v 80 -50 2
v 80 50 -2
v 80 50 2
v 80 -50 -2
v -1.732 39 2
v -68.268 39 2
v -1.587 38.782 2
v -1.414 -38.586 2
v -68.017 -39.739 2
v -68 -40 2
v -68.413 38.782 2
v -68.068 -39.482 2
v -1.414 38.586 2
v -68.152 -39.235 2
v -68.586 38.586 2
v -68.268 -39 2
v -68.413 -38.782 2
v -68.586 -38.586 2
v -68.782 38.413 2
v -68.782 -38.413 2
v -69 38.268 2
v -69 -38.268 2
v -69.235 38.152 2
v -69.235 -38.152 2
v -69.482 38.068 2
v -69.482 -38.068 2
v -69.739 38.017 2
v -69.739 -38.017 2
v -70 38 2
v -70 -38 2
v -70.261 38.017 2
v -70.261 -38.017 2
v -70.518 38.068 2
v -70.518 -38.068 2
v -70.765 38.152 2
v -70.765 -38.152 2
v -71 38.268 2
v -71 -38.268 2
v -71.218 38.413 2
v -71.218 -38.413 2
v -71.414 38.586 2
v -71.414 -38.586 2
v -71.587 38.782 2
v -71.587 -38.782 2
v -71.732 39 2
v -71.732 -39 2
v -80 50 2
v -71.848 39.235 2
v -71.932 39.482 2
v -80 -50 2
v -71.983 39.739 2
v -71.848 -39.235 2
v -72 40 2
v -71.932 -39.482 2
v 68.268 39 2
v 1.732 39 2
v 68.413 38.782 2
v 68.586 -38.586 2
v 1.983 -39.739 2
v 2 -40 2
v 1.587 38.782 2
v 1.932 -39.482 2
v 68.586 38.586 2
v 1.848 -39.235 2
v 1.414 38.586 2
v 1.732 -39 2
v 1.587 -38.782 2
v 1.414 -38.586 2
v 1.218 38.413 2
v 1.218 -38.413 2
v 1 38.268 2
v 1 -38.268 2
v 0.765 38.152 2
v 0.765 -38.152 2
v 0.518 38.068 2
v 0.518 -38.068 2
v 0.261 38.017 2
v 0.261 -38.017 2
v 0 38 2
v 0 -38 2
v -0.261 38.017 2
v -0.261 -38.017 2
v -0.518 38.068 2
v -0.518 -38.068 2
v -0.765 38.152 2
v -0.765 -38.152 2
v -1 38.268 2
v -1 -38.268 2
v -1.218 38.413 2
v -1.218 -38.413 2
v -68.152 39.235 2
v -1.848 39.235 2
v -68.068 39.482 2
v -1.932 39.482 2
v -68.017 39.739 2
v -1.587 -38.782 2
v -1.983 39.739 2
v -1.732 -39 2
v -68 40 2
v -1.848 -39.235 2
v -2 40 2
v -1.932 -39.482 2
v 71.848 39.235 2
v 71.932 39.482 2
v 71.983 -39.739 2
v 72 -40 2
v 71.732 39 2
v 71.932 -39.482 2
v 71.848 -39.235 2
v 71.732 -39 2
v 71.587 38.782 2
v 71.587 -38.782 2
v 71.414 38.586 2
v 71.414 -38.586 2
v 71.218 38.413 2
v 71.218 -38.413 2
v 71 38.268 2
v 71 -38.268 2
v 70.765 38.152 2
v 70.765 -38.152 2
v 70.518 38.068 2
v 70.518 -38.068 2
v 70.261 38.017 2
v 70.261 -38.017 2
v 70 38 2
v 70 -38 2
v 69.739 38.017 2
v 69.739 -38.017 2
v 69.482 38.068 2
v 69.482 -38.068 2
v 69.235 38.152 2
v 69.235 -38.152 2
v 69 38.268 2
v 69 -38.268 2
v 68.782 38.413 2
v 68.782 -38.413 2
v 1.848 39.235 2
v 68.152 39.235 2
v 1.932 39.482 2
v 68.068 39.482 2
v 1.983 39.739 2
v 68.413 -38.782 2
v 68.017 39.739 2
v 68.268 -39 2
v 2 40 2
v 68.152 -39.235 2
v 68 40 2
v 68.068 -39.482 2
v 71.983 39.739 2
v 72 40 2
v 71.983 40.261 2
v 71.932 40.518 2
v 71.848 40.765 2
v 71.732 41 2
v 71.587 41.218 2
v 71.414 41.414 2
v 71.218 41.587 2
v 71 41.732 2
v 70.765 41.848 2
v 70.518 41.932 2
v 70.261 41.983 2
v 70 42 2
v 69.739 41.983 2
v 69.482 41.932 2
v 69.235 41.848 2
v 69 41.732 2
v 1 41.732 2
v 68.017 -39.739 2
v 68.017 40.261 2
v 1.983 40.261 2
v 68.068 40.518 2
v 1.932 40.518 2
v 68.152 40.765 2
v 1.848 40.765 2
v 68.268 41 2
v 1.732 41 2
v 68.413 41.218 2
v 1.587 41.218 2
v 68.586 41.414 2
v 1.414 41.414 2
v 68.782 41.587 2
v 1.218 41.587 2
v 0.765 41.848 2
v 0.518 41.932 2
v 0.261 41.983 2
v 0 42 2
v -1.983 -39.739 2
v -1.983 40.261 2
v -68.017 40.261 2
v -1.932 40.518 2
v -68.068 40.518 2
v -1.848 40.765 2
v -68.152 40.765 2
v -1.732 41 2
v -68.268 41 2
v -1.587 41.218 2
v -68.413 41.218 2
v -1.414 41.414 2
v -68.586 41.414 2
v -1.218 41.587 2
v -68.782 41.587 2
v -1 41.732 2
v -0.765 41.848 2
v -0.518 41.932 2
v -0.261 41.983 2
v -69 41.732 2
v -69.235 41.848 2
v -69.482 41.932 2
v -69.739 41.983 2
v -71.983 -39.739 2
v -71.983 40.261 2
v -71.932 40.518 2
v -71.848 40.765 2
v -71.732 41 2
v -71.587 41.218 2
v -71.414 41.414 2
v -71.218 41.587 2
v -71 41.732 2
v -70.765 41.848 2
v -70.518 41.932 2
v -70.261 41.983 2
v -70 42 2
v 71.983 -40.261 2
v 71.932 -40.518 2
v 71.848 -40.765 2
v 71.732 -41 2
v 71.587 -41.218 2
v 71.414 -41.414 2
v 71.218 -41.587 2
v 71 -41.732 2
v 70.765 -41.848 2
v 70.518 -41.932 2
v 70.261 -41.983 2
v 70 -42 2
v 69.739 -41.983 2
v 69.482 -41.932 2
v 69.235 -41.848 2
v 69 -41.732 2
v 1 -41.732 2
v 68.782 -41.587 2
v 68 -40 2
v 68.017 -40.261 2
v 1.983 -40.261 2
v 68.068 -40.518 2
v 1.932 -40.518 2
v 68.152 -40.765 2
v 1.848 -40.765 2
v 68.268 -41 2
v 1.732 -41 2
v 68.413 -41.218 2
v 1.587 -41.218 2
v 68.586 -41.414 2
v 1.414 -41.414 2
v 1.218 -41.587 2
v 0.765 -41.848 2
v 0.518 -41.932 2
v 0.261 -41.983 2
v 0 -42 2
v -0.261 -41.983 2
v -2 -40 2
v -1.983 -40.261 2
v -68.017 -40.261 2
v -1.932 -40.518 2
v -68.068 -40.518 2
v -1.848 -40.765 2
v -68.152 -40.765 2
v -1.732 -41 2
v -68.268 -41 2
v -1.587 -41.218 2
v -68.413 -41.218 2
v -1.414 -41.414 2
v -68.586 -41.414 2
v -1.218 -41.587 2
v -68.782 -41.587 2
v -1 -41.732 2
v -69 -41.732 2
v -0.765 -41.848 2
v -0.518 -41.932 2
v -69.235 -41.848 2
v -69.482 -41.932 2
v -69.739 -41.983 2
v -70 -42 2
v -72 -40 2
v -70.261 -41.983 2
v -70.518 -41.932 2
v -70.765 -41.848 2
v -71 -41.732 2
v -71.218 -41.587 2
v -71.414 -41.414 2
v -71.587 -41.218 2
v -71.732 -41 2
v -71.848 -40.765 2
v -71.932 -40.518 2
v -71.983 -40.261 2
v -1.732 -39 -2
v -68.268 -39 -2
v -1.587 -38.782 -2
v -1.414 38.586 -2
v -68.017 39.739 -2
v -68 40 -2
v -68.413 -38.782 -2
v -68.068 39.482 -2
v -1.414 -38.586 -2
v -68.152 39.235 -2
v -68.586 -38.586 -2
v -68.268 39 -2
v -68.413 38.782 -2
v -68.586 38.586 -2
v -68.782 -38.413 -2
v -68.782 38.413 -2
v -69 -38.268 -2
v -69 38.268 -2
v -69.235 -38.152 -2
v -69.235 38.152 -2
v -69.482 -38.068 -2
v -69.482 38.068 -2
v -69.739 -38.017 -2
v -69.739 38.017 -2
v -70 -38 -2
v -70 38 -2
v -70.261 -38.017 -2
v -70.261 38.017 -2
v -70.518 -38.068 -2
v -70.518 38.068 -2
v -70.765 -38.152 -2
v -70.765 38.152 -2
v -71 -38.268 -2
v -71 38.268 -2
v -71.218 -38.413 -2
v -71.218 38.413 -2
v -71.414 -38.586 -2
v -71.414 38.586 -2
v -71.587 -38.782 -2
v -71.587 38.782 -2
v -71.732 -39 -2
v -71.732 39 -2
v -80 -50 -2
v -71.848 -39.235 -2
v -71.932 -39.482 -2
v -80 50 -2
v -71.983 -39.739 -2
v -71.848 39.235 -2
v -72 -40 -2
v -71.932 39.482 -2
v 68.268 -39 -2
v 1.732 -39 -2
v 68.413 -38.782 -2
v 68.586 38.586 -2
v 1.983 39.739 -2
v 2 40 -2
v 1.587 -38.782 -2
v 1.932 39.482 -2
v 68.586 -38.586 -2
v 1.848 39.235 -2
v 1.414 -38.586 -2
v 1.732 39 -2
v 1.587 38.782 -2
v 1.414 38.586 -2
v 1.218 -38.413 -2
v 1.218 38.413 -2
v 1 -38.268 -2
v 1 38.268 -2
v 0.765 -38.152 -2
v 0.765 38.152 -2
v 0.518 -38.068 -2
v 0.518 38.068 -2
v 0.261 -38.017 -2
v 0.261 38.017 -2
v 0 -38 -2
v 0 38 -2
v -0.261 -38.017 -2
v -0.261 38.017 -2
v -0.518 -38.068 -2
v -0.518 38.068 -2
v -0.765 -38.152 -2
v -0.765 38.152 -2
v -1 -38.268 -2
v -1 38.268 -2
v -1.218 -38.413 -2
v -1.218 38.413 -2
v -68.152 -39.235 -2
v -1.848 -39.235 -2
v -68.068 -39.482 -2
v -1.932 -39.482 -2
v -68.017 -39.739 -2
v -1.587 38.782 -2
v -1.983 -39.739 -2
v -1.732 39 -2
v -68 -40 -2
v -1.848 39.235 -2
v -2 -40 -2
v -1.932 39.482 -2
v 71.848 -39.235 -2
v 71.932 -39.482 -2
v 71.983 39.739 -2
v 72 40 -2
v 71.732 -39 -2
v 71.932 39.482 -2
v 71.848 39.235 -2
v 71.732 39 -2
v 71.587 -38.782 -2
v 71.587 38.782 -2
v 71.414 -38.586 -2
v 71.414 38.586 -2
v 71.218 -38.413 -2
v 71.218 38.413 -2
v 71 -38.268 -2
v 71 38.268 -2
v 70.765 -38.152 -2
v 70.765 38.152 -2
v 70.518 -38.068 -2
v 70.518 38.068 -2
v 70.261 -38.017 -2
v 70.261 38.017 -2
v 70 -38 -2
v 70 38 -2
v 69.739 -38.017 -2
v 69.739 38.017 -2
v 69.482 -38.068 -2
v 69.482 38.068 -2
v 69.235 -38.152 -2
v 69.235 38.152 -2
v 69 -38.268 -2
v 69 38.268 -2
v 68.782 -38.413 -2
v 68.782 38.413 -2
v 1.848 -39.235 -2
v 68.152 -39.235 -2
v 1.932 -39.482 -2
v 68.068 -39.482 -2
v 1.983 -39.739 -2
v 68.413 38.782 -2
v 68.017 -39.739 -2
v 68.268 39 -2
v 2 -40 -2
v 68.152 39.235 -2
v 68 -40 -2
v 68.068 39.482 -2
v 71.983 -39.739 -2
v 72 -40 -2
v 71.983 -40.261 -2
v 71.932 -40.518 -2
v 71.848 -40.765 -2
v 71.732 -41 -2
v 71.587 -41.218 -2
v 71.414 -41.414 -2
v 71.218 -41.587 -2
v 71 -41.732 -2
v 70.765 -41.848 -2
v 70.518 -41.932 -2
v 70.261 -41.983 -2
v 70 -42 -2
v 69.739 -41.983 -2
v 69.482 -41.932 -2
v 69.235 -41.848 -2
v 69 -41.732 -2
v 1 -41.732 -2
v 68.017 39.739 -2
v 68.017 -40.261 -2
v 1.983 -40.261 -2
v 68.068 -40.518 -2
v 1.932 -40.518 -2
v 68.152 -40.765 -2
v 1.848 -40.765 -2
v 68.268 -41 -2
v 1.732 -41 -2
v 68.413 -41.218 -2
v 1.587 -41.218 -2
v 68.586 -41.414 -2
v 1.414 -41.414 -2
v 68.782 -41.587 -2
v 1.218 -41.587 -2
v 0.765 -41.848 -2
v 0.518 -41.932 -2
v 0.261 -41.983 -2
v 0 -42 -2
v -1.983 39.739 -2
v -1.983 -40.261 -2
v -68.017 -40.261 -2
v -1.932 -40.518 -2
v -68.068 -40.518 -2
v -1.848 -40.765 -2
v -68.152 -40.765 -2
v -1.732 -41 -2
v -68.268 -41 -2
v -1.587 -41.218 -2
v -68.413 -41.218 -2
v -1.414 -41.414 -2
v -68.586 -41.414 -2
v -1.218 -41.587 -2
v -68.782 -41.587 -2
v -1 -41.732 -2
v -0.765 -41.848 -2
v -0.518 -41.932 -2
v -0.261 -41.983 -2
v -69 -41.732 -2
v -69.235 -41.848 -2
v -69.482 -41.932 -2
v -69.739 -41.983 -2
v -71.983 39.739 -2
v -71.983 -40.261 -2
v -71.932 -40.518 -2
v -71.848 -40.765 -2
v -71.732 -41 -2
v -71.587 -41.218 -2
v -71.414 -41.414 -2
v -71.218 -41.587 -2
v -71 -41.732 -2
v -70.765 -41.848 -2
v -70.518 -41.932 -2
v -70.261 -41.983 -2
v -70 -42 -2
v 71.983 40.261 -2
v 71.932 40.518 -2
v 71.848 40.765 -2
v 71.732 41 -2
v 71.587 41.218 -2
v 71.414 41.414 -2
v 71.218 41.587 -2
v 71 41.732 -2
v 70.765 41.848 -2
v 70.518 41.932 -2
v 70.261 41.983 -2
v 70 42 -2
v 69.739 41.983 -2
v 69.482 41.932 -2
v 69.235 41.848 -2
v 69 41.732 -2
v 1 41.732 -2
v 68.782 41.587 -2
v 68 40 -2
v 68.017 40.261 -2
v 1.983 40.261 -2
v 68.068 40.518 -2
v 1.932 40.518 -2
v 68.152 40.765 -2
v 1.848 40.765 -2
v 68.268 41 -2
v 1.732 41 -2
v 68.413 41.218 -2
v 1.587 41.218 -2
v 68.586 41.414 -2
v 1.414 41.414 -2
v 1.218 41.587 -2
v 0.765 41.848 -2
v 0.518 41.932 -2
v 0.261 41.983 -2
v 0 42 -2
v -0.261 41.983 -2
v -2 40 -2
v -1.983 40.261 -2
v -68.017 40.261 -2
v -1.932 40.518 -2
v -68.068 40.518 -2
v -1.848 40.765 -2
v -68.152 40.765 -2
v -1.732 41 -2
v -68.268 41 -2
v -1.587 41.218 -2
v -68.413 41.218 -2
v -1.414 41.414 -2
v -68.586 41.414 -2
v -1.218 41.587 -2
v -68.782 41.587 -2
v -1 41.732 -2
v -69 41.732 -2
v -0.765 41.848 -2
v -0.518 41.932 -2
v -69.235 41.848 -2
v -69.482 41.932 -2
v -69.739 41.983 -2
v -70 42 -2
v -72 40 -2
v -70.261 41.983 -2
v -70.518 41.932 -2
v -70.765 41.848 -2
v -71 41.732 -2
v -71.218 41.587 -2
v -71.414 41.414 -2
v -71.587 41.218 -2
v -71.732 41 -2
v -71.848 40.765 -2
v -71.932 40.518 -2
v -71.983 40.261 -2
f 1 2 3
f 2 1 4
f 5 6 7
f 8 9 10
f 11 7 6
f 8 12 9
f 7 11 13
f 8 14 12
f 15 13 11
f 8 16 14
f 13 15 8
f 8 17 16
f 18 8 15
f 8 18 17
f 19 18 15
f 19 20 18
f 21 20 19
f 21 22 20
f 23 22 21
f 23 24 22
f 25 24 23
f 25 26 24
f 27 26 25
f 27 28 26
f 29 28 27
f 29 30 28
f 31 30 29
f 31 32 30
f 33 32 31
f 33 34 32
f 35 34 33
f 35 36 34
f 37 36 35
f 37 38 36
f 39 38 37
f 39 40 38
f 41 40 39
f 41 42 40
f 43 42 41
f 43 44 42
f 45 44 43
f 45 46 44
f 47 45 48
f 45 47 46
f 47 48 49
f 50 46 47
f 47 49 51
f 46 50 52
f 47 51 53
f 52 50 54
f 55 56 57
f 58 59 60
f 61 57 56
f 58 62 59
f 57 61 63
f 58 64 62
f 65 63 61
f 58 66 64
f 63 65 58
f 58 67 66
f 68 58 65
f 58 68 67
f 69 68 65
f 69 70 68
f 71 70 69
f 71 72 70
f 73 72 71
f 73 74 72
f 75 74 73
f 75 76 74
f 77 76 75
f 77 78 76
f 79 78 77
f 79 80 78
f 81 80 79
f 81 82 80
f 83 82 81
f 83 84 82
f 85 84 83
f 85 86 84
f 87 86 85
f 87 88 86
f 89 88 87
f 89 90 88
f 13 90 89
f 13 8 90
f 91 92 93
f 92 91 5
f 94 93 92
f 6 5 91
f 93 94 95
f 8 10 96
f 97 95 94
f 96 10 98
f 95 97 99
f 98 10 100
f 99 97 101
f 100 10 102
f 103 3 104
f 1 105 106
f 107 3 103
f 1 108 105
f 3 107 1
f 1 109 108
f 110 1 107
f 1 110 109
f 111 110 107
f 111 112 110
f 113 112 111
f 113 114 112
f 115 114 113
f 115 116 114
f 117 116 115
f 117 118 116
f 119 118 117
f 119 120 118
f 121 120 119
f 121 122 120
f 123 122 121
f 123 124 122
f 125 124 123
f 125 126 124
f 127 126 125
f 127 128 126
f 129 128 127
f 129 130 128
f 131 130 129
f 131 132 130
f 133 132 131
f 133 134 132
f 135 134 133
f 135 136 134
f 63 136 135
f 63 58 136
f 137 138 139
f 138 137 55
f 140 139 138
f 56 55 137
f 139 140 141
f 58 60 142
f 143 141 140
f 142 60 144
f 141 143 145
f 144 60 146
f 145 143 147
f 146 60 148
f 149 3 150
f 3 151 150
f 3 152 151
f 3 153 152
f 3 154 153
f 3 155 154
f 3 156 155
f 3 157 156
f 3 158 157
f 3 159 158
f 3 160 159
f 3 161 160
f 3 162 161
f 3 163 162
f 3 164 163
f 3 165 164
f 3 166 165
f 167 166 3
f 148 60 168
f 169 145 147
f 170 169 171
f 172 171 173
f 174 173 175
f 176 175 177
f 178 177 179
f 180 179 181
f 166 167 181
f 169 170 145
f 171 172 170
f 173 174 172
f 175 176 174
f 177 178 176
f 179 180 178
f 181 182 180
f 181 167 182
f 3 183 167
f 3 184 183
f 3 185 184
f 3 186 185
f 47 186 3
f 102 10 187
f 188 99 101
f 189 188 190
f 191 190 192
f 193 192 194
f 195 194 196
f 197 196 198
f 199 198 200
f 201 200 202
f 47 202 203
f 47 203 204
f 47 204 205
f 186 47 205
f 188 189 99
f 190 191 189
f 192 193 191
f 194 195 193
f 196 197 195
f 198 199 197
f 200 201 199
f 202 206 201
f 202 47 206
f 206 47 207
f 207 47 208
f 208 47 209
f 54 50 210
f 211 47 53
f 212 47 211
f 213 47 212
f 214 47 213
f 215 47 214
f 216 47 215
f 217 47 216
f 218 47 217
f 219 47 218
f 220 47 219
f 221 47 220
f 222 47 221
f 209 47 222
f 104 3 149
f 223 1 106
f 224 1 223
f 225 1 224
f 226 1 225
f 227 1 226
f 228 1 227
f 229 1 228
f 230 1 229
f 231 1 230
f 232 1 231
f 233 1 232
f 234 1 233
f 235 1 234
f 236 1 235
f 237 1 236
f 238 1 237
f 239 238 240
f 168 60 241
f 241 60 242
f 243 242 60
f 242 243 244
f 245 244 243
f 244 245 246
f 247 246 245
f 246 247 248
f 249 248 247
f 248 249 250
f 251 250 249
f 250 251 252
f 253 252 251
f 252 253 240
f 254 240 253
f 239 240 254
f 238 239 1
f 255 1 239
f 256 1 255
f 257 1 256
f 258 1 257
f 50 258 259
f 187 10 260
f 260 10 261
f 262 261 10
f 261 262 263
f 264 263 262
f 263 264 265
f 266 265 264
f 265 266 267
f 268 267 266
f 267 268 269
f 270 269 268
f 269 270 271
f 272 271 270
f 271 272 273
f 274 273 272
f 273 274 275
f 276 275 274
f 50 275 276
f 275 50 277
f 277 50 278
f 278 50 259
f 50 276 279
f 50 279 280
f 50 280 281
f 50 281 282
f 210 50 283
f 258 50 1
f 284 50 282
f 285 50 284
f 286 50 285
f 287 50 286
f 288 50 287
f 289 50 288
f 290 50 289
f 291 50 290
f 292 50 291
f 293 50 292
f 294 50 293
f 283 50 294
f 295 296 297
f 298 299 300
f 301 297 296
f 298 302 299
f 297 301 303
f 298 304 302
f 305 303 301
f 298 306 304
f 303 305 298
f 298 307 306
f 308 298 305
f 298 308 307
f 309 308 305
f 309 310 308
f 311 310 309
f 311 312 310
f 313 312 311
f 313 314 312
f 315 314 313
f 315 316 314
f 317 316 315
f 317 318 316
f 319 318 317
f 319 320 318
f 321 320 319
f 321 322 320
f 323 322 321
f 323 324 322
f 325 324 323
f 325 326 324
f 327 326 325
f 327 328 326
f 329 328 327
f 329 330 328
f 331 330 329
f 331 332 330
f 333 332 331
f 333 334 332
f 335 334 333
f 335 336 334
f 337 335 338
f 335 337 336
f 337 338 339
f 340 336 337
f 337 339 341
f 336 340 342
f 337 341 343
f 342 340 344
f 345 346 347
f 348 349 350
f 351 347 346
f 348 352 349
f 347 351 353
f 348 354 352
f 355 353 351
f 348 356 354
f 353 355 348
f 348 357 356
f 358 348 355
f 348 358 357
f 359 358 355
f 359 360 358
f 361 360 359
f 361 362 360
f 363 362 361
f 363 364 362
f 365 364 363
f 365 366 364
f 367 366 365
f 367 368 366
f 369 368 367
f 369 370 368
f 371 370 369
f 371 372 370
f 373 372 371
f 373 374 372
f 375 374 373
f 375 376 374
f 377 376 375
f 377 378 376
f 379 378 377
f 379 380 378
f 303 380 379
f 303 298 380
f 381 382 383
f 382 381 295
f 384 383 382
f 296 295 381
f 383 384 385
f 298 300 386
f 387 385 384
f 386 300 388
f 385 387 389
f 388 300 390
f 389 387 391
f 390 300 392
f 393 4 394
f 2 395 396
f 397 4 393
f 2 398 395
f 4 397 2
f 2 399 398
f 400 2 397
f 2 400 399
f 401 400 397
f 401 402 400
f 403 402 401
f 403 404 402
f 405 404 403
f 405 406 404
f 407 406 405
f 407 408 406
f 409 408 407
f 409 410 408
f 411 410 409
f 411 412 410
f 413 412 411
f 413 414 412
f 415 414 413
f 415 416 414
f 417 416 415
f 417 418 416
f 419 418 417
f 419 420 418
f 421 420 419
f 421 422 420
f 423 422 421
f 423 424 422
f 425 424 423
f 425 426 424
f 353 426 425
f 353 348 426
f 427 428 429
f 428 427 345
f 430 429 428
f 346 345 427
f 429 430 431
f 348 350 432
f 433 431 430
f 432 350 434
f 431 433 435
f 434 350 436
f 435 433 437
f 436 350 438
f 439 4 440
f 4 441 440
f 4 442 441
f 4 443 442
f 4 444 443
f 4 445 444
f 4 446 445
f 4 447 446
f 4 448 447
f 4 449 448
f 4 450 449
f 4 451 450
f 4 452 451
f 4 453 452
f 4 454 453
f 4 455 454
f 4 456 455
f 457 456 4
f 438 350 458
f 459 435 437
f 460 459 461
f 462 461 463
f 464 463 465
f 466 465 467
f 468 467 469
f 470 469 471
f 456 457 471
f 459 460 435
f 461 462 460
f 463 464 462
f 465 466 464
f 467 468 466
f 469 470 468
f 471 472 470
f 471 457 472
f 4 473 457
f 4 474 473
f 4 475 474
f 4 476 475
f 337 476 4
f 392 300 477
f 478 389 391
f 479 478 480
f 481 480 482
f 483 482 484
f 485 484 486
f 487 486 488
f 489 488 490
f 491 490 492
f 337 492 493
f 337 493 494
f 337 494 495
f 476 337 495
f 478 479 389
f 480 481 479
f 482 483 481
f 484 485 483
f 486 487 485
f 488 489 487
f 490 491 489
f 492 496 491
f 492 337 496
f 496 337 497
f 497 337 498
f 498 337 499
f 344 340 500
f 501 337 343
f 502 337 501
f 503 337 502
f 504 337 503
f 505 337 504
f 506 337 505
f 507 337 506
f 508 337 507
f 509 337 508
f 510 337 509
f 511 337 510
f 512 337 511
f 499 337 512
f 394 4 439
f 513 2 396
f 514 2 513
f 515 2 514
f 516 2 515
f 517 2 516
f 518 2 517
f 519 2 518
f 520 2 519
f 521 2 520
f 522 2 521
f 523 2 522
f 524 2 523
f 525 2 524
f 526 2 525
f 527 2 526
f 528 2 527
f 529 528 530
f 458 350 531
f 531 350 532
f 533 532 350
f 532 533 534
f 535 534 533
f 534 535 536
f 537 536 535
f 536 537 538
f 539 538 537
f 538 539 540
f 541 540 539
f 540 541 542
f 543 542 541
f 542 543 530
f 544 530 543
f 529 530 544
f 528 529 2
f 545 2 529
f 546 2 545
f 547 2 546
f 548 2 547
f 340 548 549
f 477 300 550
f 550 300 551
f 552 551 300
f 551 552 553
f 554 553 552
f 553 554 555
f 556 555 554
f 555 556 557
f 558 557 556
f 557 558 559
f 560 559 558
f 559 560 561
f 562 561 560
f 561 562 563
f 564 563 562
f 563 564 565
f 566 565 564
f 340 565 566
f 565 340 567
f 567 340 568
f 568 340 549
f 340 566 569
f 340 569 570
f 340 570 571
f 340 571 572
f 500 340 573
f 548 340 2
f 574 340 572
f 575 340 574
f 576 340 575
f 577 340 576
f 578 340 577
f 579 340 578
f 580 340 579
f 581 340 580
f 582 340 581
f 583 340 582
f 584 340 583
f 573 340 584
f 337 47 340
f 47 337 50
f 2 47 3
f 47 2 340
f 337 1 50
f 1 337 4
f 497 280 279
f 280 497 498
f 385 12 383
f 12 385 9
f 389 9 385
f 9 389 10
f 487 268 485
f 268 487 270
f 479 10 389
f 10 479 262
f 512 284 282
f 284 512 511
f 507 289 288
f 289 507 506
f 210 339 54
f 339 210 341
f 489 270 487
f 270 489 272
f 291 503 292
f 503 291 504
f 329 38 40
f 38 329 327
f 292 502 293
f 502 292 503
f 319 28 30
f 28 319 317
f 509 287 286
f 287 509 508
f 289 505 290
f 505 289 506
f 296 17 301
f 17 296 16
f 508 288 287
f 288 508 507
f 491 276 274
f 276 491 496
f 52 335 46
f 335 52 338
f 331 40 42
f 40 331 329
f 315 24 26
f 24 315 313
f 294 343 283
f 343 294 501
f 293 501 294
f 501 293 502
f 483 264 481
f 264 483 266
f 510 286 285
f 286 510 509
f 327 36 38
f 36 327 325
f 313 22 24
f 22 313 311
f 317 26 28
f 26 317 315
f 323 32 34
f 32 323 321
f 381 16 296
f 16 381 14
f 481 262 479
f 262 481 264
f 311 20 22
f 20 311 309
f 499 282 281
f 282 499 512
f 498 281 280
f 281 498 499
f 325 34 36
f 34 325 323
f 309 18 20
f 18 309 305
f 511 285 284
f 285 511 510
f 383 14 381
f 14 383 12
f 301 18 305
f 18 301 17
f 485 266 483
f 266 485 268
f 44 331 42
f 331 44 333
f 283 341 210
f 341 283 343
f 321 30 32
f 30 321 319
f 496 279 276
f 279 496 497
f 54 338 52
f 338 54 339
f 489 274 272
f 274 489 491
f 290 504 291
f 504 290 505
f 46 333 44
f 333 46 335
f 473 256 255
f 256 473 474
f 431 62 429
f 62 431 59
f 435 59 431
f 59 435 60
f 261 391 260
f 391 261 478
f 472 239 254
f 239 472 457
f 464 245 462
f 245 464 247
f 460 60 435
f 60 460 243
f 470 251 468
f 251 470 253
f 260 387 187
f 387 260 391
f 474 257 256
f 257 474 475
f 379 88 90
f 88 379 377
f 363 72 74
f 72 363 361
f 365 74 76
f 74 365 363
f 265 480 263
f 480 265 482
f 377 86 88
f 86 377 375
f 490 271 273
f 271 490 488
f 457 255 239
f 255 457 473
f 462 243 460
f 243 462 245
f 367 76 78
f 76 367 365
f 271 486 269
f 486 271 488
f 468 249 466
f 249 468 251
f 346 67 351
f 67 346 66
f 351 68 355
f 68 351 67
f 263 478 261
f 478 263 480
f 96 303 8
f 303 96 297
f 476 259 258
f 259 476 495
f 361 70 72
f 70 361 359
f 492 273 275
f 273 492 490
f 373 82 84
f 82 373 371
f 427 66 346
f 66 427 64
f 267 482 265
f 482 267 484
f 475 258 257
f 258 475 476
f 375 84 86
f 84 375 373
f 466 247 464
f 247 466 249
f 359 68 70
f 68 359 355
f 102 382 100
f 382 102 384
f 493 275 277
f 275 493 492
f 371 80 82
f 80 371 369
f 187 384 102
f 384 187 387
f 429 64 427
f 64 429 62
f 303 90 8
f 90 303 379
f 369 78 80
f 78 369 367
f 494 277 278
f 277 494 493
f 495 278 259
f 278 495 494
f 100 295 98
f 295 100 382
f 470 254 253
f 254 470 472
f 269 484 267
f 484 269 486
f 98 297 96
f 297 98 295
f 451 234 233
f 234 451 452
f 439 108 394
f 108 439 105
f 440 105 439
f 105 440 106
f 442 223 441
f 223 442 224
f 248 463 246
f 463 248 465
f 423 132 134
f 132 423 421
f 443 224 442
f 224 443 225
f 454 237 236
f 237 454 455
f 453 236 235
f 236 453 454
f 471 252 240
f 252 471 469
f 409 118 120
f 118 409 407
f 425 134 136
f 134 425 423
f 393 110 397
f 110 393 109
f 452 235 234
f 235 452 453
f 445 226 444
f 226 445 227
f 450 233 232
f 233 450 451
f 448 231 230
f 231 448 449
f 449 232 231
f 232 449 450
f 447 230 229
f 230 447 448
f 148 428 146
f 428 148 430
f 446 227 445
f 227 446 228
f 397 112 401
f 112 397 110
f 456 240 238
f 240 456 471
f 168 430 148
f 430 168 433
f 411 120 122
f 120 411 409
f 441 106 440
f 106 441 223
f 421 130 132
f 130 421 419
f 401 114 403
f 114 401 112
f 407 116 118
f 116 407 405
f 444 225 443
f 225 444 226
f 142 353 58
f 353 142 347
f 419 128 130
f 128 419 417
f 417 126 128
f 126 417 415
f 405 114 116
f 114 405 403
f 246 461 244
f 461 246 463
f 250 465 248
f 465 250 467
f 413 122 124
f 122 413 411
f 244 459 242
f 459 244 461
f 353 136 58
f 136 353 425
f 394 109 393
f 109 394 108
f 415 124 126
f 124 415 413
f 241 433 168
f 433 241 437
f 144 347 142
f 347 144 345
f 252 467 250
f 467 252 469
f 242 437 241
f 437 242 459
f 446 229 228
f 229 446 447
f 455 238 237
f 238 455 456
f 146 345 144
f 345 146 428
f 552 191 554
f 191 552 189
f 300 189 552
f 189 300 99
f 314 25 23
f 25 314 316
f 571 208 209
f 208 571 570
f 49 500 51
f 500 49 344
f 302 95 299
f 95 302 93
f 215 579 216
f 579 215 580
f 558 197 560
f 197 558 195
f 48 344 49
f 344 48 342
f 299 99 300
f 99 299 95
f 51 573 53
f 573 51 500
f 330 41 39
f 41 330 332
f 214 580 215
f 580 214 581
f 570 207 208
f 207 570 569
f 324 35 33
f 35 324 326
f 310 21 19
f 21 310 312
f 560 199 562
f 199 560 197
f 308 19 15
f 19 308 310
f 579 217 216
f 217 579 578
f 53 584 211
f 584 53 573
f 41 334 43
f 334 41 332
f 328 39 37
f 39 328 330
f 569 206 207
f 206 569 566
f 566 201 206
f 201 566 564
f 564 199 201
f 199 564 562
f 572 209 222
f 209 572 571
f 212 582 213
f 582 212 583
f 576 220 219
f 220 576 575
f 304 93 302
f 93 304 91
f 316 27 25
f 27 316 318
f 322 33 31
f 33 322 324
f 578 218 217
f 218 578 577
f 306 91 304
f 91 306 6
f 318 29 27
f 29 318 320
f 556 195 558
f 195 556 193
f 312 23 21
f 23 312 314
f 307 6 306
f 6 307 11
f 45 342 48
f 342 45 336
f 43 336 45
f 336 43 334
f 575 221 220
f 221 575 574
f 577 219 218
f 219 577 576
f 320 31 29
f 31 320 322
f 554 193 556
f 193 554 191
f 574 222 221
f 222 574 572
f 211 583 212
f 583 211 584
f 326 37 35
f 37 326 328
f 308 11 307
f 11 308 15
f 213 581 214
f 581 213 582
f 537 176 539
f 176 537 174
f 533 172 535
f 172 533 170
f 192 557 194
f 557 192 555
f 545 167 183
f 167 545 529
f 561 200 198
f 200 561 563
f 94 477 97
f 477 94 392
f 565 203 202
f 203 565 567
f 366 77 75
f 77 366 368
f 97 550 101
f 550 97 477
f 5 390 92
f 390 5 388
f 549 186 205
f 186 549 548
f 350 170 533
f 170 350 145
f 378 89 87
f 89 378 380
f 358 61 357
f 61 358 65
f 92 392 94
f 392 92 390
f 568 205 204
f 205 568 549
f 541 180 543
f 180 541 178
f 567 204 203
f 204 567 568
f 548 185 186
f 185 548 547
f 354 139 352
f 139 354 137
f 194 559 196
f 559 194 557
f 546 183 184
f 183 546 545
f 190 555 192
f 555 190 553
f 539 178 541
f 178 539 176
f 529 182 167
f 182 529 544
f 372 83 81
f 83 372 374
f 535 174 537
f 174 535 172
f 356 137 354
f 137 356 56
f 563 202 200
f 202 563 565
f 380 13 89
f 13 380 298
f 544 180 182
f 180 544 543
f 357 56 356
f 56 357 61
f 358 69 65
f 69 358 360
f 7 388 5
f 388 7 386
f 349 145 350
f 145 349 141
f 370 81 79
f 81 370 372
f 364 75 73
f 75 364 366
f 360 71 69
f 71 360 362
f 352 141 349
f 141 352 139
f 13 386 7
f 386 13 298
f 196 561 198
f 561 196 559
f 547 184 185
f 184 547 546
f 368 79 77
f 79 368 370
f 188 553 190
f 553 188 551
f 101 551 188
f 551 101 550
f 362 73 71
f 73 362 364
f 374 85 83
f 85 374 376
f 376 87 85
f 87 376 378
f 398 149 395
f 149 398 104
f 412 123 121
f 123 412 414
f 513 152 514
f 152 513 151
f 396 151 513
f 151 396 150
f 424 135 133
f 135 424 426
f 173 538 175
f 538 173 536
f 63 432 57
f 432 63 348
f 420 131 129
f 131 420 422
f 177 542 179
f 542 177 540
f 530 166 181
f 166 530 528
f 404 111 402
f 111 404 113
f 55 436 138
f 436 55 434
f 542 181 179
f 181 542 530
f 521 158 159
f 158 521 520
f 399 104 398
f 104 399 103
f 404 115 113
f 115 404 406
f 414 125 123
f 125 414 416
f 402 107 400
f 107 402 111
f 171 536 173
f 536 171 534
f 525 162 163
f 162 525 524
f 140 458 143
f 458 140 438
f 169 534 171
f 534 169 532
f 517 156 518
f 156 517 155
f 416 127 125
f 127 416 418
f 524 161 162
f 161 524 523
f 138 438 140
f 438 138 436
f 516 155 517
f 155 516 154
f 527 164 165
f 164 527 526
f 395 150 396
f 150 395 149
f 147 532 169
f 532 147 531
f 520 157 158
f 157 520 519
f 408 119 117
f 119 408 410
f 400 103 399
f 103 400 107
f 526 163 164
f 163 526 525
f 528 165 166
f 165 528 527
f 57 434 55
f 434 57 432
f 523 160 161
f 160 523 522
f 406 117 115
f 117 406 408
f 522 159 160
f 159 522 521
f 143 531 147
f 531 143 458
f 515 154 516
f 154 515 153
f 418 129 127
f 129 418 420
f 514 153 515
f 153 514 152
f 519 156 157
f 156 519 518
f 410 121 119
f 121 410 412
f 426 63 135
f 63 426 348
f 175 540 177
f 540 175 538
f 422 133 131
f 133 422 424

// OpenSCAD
// ========================================
// a 160 x 100 x 4 mm plate with six 4 mm holes
// NeuroCAD canonical IR; dimensions are millimetres
// ========================================
$fn = 48;

difference() {
  cube(size=[160, 100, 4], center=true);
  translate([-70, -40, 0]) {
    cylinder(r=2, h=6, center=true);
  }
  translate([0, -40, 0]) {
    cylinder(r=2, h=6, center=true);
  }
  translate([70, -40, 0]) {
    cylinder(r=2, h=6, center=true);
  }
  translate([-70, 40, 0]) {
    cylinder(r=2, h=6, center=true);
  }
  translate([0, 40, 0]) {
    cylinder(r=2, h=6, center=true);
  }
  translate([70, 40, 0]) {
    cylinder(r=2, h=6, center=true);
  }
}
